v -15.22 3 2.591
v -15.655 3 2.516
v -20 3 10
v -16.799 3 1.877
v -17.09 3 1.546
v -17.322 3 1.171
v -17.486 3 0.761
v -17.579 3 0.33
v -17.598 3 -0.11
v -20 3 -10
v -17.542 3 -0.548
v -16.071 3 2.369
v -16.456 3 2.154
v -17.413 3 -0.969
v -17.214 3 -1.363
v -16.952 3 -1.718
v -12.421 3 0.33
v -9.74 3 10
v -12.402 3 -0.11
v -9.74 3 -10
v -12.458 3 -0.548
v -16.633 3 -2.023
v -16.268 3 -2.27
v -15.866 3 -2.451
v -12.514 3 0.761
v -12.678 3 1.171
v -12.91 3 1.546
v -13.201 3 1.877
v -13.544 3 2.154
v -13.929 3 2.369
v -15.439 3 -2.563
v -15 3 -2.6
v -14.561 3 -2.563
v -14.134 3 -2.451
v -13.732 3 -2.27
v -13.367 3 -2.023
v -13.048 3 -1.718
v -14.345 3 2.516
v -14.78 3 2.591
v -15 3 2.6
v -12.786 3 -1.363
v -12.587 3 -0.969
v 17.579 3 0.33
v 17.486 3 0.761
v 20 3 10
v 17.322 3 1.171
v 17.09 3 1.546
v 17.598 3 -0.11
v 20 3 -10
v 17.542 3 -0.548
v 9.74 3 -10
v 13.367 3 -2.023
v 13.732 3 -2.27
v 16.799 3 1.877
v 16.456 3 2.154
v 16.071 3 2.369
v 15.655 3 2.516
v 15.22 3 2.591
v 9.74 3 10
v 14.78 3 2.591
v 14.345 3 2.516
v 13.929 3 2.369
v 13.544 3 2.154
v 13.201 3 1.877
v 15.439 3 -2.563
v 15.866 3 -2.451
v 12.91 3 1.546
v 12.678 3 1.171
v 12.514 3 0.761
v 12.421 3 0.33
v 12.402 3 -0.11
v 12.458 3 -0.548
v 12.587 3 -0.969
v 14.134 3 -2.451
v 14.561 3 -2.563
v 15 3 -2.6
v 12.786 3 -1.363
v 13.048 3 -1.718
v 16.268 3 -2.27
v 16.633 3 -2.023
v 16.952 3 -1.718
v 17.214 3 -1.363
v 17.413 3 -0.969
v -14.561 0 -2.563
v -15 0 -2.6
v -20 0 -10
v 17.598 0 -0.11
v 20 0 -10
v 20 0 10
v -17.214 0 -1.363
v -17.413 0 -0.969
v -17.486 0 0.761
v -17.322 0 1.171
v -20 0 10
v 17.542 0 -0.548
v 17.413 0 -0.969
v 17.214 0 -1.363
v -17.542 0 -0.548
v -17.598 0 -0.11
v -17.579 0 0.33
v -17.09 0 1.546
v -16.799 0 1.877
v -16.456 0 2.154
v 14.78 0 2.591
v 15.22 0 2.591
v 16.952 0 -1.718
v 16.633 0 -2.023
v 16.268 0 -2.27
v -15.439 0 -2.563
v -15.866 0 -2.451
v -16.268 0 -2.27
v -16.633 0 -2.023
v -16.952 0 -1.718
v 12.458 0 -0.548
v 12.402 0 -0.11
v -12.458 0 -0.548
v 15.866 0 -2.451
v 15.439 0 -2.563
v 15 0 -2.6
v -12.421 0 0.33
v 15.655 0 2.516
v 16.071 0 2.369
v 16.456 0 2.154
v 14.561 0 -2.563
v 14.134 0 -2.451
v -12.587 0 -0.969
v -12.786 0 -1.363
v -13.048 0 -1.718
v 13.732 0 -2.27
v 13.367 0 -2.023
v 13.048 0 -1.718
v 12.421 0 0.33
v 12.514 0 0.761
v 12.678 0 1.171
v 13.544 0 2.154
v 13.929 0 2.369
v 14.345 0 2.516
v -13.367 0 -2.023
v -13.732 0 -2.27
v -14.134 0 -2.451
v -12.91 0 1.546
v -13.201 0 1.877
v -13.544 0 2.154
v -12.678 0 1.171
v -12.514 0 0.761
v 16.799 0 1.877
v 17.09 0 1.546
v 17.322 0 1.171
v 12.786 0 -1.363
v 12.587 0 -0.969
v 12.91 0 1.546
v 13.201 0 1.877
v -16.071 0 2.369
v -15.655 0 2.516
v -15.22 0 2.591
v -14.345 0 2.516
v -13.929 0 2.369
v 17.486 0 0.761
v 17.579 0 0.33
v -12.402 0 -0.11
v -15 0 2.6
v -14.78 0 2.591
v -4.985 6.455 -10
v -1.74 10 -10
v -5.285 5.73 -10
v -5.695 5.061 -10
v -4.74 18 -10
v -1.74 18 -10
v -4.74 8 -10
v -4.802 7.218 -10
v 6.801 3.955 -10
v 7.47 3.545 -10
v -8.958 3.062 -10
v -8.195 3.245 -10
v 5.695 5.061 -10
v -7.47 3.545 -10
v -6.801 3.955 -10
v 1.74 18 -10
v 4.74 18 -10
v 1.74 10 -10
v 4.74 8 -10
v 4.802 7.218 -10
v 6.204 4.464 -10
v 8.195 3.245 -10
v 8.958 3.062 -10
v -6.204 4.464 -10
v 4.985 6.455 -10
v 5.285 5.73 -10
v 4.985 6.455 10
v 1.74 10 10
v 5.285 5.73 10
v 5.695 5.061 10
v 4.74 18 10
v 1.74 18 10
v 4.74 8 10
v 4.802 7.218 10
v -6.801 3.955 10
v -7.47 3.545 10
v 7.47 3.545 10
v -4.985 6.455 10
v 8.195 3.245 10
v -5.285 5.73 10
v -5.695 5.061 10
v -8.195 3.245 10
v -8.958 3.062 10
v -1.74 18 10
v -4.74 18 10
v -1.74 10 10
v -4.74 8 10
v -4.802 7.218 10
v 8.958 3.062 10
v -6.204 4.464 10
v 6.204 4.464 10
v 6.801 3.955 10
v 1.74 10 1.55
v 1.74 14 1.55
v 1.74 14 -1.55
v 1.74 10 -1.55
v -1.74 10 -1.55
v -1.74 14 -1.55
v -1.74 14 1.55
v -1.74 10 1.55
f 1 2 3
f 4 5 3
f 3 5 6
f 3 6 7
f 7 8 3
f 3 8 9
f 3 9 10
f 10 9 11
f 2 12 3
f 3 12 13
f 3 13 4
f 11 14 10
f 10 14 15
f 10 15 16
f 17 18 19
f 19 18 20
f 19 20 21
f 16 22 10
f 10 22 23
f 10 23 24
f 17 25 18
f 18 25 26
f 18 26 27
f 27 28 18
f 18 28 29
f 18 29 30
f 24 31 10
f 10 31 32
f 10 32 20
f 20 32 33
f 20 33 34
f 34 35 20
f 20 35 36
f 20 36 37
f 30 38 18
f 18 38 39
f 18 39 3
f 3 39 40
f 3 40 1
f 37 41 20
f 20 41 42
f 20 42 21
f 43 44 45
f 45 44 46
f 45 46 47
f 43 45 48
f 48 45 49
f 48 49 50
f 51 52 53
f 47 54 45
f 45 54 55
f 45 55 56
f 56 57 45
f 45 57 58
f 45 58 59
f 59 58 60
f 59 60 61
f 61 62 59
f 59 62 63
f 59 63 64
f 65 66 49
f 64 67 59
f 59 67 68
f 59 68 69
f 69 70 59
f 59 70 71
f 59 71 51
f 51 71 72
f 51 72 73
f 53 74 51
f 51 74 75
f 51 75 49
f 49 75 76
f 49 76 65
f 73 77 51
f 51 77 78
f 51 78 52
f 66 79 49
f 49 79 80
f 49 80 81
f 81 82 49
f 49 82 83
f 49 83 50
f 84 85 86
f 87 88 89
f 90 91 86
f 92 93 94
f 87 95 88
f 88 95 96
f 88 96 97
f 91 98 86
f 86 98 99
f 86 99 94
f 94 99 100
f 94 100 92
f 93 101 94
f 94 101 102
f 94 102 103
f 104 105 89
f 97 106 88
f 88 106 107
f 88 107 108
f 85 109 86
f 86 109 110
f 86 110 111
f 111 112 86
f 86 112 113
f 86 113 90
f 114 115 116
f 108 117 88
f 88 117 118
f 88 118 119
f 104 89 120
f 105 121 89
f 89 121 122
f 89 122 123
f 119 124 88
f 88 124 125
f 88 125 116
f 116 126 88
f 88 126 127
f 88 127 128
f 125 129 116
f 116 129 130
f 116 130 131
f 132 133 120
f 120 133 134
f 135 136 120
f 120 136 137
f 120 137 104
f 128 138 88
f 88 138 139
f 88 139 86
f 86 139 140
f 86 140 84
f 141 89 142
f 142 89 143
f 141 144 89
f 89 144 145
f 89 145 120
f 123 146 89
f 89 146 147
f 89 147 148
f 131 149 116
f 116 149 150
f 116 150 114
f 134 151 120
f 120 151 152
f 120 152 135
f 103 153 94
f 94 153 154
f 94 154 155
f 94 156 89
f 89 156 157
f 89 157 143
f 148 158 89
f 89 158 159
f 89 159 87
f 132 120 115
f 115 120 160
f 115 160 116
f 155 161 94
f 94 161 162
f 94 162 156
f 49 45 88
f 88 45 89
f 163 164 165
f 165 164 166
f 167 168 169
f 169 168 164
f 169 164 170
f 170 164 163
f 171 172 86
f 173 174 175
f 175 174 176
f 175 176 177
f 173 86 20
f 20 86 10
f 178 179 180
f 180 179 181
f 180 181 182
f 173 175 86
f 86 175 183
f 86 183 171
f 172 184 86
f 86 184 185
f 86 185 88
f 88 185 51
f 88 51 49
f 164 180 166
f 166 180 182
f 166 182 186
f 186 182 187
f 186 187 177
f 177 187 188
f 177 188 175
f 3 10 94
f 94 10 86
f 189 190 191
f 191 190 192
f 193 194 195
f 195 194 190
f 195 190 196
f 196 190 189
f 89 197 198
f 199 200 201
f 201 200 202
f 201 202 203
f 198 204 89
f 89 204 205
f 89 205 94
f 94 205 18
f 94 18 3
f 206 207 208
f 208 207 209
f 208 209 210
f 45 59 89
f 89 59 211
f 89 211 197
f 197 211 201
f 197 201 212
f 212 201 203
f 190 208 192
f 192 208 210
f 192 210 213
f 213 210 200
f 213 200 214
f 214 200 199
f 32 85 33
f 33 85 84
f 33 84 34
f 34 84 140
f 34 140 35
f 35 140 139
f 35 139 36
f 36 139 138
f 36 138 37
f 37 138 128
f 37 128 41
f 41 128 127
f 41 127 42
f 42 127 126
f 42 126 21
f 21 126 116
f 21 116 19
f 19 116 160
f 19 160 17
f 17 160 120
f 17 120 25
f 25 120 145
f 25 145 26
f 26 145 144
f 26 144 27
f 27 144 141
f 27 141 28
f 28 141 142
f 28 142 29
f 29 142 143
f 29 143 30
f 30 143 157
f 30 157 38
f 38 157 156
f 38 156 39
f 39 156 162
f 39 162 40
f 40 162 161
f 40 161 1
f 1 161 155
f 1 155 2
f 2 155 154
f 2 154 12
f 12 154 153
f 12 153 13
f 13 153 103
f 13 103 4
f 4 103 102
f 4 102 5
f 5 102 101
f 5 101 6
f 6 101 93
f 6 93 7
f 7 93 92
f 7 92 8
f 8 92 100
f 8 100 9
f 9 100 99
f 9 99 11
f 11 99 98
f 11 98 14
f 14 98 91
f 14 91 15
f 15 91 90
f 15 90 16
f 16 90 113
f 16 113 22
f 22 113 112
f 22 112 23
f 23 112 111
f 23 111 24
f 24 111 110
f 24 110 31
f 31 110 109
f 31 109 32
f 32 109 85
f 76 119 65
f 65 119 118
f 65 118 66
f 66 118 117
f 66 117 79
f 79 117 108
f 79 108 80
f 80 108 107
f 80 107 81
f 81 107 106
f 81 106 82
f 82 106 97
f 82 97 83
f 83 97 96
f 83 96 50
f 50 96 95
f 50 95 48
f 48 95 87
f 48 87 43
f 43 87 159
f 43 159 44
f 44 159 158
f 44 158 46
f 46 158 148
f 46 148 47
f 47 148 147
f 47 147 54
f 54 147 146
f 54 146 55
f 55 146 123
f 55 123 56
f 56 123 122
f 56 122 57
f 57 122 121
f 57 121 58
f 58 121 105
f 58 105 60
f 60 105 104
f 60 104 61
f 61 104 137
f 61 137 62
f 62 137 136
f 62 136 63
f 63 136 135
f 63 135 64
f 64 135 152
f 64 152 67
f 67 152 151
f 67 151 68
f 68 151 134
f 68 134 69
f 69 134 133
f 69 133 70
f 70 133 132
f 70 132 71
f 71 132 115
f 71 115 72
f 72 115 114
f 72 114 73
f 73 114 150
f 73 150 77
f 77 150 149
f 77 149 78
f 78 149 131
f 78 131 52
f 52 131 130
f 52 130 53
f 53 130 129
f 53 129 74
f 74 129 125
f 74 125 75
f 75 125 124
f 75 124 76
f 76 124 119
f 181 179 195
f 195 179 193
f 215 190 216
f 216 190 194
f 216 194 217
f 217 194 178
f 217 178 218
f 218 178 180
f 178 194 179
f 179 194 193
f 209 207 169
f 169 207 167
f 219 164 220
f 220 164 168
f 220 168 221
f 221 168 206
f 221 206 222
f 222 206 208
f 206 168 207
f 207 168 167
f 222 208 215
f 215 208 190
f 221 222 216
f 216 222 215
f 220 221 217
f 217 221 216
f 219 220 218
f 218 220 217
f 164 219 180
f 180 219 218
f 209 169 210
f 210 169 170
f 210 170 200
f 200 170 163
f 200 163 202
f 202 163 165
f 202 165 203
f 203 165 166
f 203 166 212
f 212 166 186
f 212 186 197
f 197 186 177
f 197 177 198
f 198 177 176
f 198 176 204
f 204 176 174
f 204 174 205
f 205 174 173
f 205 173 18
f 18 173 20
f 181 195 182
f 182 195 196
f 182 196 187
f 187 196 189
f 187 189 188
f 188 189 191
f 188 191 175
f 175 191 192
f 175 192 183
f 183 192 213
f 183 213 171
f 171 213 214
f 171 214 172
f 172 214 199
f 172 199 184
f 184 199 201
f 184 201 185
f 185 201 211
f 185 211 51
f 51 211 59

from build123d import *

# Parameters (mm, degrees)
SKETCH3_W           = 40
SKETCH3_H           = 20
SKETCH3_R           = 2.6
JIG_BASE_DEPTH      = 3
SKETCH4_W           = 3
SKETCH4_H           = 20
JIG_WALL_DEPTH      = 15
STRINGER_LOCK_DEPTH = 9.48
BASE_FILET_R        = 5


with BuildPart() as part:
    # Sketch3 → Jig base (new body)
    with BuildSketch(Plane(origin=(0, 0, 0), x_dir=(1, 0, 0), z_dir=(0, 1, 0))):
        Rectangle(SKETCH3_W, SKETCH3_H)
        with Locations(Location((-15, 0, 0), (0, 0, 270))):
            Circle(SKETCH3_R, mode=Mode.SUBTRACT)
        with Locations(Location((15, 0, 0), (0, 0, 90))):
            Circle(SKETCH3_R, mode=Mode.SUBTRACT)
    extrude(amount=JIG_BASE_DEPTH)

    # Sketch4 → jig wall (add)
    with BuildSketch(Plane(origin=(0, 3, 0), x_dir=(1, 0, 0), z_dir=(0, 1, 0))):
        with Locations((-3.24, 0)):
            Rectangle(SKETCH4_W, SKETCH4_H)
        with Locations((3.24, 0)):
            Rectangle(SKETCH4_W, SKETCH4_H)
    extrude(amount=JIG_WALL_DEPTH)

    # Sketch5 → stringer lock (add)
    with BuildSketch(Plane(origin=(4.74, 0, 0), x_dir=(0, 0, -1), z_dir=(1, 0, 0))):
        Polygon((-10, 0), (10, 0), (10, 10), (1.55, 10), (1.55, 14), (-1.55, 14), (-1.55, 10), (-10, 10), align=None)
    extrude(amount=-STRINGER_LOCK_DEPTH)

    # base filet
    base_filet_edges = [part.edges().sort_by_distance(p)[0] for p in [
        (-4.74, 3, 0),
        (4.74, 3, 0),
    ]]
    fillet(base_filet_edges, radius=BASE_FILET_R)


solid = part.part
